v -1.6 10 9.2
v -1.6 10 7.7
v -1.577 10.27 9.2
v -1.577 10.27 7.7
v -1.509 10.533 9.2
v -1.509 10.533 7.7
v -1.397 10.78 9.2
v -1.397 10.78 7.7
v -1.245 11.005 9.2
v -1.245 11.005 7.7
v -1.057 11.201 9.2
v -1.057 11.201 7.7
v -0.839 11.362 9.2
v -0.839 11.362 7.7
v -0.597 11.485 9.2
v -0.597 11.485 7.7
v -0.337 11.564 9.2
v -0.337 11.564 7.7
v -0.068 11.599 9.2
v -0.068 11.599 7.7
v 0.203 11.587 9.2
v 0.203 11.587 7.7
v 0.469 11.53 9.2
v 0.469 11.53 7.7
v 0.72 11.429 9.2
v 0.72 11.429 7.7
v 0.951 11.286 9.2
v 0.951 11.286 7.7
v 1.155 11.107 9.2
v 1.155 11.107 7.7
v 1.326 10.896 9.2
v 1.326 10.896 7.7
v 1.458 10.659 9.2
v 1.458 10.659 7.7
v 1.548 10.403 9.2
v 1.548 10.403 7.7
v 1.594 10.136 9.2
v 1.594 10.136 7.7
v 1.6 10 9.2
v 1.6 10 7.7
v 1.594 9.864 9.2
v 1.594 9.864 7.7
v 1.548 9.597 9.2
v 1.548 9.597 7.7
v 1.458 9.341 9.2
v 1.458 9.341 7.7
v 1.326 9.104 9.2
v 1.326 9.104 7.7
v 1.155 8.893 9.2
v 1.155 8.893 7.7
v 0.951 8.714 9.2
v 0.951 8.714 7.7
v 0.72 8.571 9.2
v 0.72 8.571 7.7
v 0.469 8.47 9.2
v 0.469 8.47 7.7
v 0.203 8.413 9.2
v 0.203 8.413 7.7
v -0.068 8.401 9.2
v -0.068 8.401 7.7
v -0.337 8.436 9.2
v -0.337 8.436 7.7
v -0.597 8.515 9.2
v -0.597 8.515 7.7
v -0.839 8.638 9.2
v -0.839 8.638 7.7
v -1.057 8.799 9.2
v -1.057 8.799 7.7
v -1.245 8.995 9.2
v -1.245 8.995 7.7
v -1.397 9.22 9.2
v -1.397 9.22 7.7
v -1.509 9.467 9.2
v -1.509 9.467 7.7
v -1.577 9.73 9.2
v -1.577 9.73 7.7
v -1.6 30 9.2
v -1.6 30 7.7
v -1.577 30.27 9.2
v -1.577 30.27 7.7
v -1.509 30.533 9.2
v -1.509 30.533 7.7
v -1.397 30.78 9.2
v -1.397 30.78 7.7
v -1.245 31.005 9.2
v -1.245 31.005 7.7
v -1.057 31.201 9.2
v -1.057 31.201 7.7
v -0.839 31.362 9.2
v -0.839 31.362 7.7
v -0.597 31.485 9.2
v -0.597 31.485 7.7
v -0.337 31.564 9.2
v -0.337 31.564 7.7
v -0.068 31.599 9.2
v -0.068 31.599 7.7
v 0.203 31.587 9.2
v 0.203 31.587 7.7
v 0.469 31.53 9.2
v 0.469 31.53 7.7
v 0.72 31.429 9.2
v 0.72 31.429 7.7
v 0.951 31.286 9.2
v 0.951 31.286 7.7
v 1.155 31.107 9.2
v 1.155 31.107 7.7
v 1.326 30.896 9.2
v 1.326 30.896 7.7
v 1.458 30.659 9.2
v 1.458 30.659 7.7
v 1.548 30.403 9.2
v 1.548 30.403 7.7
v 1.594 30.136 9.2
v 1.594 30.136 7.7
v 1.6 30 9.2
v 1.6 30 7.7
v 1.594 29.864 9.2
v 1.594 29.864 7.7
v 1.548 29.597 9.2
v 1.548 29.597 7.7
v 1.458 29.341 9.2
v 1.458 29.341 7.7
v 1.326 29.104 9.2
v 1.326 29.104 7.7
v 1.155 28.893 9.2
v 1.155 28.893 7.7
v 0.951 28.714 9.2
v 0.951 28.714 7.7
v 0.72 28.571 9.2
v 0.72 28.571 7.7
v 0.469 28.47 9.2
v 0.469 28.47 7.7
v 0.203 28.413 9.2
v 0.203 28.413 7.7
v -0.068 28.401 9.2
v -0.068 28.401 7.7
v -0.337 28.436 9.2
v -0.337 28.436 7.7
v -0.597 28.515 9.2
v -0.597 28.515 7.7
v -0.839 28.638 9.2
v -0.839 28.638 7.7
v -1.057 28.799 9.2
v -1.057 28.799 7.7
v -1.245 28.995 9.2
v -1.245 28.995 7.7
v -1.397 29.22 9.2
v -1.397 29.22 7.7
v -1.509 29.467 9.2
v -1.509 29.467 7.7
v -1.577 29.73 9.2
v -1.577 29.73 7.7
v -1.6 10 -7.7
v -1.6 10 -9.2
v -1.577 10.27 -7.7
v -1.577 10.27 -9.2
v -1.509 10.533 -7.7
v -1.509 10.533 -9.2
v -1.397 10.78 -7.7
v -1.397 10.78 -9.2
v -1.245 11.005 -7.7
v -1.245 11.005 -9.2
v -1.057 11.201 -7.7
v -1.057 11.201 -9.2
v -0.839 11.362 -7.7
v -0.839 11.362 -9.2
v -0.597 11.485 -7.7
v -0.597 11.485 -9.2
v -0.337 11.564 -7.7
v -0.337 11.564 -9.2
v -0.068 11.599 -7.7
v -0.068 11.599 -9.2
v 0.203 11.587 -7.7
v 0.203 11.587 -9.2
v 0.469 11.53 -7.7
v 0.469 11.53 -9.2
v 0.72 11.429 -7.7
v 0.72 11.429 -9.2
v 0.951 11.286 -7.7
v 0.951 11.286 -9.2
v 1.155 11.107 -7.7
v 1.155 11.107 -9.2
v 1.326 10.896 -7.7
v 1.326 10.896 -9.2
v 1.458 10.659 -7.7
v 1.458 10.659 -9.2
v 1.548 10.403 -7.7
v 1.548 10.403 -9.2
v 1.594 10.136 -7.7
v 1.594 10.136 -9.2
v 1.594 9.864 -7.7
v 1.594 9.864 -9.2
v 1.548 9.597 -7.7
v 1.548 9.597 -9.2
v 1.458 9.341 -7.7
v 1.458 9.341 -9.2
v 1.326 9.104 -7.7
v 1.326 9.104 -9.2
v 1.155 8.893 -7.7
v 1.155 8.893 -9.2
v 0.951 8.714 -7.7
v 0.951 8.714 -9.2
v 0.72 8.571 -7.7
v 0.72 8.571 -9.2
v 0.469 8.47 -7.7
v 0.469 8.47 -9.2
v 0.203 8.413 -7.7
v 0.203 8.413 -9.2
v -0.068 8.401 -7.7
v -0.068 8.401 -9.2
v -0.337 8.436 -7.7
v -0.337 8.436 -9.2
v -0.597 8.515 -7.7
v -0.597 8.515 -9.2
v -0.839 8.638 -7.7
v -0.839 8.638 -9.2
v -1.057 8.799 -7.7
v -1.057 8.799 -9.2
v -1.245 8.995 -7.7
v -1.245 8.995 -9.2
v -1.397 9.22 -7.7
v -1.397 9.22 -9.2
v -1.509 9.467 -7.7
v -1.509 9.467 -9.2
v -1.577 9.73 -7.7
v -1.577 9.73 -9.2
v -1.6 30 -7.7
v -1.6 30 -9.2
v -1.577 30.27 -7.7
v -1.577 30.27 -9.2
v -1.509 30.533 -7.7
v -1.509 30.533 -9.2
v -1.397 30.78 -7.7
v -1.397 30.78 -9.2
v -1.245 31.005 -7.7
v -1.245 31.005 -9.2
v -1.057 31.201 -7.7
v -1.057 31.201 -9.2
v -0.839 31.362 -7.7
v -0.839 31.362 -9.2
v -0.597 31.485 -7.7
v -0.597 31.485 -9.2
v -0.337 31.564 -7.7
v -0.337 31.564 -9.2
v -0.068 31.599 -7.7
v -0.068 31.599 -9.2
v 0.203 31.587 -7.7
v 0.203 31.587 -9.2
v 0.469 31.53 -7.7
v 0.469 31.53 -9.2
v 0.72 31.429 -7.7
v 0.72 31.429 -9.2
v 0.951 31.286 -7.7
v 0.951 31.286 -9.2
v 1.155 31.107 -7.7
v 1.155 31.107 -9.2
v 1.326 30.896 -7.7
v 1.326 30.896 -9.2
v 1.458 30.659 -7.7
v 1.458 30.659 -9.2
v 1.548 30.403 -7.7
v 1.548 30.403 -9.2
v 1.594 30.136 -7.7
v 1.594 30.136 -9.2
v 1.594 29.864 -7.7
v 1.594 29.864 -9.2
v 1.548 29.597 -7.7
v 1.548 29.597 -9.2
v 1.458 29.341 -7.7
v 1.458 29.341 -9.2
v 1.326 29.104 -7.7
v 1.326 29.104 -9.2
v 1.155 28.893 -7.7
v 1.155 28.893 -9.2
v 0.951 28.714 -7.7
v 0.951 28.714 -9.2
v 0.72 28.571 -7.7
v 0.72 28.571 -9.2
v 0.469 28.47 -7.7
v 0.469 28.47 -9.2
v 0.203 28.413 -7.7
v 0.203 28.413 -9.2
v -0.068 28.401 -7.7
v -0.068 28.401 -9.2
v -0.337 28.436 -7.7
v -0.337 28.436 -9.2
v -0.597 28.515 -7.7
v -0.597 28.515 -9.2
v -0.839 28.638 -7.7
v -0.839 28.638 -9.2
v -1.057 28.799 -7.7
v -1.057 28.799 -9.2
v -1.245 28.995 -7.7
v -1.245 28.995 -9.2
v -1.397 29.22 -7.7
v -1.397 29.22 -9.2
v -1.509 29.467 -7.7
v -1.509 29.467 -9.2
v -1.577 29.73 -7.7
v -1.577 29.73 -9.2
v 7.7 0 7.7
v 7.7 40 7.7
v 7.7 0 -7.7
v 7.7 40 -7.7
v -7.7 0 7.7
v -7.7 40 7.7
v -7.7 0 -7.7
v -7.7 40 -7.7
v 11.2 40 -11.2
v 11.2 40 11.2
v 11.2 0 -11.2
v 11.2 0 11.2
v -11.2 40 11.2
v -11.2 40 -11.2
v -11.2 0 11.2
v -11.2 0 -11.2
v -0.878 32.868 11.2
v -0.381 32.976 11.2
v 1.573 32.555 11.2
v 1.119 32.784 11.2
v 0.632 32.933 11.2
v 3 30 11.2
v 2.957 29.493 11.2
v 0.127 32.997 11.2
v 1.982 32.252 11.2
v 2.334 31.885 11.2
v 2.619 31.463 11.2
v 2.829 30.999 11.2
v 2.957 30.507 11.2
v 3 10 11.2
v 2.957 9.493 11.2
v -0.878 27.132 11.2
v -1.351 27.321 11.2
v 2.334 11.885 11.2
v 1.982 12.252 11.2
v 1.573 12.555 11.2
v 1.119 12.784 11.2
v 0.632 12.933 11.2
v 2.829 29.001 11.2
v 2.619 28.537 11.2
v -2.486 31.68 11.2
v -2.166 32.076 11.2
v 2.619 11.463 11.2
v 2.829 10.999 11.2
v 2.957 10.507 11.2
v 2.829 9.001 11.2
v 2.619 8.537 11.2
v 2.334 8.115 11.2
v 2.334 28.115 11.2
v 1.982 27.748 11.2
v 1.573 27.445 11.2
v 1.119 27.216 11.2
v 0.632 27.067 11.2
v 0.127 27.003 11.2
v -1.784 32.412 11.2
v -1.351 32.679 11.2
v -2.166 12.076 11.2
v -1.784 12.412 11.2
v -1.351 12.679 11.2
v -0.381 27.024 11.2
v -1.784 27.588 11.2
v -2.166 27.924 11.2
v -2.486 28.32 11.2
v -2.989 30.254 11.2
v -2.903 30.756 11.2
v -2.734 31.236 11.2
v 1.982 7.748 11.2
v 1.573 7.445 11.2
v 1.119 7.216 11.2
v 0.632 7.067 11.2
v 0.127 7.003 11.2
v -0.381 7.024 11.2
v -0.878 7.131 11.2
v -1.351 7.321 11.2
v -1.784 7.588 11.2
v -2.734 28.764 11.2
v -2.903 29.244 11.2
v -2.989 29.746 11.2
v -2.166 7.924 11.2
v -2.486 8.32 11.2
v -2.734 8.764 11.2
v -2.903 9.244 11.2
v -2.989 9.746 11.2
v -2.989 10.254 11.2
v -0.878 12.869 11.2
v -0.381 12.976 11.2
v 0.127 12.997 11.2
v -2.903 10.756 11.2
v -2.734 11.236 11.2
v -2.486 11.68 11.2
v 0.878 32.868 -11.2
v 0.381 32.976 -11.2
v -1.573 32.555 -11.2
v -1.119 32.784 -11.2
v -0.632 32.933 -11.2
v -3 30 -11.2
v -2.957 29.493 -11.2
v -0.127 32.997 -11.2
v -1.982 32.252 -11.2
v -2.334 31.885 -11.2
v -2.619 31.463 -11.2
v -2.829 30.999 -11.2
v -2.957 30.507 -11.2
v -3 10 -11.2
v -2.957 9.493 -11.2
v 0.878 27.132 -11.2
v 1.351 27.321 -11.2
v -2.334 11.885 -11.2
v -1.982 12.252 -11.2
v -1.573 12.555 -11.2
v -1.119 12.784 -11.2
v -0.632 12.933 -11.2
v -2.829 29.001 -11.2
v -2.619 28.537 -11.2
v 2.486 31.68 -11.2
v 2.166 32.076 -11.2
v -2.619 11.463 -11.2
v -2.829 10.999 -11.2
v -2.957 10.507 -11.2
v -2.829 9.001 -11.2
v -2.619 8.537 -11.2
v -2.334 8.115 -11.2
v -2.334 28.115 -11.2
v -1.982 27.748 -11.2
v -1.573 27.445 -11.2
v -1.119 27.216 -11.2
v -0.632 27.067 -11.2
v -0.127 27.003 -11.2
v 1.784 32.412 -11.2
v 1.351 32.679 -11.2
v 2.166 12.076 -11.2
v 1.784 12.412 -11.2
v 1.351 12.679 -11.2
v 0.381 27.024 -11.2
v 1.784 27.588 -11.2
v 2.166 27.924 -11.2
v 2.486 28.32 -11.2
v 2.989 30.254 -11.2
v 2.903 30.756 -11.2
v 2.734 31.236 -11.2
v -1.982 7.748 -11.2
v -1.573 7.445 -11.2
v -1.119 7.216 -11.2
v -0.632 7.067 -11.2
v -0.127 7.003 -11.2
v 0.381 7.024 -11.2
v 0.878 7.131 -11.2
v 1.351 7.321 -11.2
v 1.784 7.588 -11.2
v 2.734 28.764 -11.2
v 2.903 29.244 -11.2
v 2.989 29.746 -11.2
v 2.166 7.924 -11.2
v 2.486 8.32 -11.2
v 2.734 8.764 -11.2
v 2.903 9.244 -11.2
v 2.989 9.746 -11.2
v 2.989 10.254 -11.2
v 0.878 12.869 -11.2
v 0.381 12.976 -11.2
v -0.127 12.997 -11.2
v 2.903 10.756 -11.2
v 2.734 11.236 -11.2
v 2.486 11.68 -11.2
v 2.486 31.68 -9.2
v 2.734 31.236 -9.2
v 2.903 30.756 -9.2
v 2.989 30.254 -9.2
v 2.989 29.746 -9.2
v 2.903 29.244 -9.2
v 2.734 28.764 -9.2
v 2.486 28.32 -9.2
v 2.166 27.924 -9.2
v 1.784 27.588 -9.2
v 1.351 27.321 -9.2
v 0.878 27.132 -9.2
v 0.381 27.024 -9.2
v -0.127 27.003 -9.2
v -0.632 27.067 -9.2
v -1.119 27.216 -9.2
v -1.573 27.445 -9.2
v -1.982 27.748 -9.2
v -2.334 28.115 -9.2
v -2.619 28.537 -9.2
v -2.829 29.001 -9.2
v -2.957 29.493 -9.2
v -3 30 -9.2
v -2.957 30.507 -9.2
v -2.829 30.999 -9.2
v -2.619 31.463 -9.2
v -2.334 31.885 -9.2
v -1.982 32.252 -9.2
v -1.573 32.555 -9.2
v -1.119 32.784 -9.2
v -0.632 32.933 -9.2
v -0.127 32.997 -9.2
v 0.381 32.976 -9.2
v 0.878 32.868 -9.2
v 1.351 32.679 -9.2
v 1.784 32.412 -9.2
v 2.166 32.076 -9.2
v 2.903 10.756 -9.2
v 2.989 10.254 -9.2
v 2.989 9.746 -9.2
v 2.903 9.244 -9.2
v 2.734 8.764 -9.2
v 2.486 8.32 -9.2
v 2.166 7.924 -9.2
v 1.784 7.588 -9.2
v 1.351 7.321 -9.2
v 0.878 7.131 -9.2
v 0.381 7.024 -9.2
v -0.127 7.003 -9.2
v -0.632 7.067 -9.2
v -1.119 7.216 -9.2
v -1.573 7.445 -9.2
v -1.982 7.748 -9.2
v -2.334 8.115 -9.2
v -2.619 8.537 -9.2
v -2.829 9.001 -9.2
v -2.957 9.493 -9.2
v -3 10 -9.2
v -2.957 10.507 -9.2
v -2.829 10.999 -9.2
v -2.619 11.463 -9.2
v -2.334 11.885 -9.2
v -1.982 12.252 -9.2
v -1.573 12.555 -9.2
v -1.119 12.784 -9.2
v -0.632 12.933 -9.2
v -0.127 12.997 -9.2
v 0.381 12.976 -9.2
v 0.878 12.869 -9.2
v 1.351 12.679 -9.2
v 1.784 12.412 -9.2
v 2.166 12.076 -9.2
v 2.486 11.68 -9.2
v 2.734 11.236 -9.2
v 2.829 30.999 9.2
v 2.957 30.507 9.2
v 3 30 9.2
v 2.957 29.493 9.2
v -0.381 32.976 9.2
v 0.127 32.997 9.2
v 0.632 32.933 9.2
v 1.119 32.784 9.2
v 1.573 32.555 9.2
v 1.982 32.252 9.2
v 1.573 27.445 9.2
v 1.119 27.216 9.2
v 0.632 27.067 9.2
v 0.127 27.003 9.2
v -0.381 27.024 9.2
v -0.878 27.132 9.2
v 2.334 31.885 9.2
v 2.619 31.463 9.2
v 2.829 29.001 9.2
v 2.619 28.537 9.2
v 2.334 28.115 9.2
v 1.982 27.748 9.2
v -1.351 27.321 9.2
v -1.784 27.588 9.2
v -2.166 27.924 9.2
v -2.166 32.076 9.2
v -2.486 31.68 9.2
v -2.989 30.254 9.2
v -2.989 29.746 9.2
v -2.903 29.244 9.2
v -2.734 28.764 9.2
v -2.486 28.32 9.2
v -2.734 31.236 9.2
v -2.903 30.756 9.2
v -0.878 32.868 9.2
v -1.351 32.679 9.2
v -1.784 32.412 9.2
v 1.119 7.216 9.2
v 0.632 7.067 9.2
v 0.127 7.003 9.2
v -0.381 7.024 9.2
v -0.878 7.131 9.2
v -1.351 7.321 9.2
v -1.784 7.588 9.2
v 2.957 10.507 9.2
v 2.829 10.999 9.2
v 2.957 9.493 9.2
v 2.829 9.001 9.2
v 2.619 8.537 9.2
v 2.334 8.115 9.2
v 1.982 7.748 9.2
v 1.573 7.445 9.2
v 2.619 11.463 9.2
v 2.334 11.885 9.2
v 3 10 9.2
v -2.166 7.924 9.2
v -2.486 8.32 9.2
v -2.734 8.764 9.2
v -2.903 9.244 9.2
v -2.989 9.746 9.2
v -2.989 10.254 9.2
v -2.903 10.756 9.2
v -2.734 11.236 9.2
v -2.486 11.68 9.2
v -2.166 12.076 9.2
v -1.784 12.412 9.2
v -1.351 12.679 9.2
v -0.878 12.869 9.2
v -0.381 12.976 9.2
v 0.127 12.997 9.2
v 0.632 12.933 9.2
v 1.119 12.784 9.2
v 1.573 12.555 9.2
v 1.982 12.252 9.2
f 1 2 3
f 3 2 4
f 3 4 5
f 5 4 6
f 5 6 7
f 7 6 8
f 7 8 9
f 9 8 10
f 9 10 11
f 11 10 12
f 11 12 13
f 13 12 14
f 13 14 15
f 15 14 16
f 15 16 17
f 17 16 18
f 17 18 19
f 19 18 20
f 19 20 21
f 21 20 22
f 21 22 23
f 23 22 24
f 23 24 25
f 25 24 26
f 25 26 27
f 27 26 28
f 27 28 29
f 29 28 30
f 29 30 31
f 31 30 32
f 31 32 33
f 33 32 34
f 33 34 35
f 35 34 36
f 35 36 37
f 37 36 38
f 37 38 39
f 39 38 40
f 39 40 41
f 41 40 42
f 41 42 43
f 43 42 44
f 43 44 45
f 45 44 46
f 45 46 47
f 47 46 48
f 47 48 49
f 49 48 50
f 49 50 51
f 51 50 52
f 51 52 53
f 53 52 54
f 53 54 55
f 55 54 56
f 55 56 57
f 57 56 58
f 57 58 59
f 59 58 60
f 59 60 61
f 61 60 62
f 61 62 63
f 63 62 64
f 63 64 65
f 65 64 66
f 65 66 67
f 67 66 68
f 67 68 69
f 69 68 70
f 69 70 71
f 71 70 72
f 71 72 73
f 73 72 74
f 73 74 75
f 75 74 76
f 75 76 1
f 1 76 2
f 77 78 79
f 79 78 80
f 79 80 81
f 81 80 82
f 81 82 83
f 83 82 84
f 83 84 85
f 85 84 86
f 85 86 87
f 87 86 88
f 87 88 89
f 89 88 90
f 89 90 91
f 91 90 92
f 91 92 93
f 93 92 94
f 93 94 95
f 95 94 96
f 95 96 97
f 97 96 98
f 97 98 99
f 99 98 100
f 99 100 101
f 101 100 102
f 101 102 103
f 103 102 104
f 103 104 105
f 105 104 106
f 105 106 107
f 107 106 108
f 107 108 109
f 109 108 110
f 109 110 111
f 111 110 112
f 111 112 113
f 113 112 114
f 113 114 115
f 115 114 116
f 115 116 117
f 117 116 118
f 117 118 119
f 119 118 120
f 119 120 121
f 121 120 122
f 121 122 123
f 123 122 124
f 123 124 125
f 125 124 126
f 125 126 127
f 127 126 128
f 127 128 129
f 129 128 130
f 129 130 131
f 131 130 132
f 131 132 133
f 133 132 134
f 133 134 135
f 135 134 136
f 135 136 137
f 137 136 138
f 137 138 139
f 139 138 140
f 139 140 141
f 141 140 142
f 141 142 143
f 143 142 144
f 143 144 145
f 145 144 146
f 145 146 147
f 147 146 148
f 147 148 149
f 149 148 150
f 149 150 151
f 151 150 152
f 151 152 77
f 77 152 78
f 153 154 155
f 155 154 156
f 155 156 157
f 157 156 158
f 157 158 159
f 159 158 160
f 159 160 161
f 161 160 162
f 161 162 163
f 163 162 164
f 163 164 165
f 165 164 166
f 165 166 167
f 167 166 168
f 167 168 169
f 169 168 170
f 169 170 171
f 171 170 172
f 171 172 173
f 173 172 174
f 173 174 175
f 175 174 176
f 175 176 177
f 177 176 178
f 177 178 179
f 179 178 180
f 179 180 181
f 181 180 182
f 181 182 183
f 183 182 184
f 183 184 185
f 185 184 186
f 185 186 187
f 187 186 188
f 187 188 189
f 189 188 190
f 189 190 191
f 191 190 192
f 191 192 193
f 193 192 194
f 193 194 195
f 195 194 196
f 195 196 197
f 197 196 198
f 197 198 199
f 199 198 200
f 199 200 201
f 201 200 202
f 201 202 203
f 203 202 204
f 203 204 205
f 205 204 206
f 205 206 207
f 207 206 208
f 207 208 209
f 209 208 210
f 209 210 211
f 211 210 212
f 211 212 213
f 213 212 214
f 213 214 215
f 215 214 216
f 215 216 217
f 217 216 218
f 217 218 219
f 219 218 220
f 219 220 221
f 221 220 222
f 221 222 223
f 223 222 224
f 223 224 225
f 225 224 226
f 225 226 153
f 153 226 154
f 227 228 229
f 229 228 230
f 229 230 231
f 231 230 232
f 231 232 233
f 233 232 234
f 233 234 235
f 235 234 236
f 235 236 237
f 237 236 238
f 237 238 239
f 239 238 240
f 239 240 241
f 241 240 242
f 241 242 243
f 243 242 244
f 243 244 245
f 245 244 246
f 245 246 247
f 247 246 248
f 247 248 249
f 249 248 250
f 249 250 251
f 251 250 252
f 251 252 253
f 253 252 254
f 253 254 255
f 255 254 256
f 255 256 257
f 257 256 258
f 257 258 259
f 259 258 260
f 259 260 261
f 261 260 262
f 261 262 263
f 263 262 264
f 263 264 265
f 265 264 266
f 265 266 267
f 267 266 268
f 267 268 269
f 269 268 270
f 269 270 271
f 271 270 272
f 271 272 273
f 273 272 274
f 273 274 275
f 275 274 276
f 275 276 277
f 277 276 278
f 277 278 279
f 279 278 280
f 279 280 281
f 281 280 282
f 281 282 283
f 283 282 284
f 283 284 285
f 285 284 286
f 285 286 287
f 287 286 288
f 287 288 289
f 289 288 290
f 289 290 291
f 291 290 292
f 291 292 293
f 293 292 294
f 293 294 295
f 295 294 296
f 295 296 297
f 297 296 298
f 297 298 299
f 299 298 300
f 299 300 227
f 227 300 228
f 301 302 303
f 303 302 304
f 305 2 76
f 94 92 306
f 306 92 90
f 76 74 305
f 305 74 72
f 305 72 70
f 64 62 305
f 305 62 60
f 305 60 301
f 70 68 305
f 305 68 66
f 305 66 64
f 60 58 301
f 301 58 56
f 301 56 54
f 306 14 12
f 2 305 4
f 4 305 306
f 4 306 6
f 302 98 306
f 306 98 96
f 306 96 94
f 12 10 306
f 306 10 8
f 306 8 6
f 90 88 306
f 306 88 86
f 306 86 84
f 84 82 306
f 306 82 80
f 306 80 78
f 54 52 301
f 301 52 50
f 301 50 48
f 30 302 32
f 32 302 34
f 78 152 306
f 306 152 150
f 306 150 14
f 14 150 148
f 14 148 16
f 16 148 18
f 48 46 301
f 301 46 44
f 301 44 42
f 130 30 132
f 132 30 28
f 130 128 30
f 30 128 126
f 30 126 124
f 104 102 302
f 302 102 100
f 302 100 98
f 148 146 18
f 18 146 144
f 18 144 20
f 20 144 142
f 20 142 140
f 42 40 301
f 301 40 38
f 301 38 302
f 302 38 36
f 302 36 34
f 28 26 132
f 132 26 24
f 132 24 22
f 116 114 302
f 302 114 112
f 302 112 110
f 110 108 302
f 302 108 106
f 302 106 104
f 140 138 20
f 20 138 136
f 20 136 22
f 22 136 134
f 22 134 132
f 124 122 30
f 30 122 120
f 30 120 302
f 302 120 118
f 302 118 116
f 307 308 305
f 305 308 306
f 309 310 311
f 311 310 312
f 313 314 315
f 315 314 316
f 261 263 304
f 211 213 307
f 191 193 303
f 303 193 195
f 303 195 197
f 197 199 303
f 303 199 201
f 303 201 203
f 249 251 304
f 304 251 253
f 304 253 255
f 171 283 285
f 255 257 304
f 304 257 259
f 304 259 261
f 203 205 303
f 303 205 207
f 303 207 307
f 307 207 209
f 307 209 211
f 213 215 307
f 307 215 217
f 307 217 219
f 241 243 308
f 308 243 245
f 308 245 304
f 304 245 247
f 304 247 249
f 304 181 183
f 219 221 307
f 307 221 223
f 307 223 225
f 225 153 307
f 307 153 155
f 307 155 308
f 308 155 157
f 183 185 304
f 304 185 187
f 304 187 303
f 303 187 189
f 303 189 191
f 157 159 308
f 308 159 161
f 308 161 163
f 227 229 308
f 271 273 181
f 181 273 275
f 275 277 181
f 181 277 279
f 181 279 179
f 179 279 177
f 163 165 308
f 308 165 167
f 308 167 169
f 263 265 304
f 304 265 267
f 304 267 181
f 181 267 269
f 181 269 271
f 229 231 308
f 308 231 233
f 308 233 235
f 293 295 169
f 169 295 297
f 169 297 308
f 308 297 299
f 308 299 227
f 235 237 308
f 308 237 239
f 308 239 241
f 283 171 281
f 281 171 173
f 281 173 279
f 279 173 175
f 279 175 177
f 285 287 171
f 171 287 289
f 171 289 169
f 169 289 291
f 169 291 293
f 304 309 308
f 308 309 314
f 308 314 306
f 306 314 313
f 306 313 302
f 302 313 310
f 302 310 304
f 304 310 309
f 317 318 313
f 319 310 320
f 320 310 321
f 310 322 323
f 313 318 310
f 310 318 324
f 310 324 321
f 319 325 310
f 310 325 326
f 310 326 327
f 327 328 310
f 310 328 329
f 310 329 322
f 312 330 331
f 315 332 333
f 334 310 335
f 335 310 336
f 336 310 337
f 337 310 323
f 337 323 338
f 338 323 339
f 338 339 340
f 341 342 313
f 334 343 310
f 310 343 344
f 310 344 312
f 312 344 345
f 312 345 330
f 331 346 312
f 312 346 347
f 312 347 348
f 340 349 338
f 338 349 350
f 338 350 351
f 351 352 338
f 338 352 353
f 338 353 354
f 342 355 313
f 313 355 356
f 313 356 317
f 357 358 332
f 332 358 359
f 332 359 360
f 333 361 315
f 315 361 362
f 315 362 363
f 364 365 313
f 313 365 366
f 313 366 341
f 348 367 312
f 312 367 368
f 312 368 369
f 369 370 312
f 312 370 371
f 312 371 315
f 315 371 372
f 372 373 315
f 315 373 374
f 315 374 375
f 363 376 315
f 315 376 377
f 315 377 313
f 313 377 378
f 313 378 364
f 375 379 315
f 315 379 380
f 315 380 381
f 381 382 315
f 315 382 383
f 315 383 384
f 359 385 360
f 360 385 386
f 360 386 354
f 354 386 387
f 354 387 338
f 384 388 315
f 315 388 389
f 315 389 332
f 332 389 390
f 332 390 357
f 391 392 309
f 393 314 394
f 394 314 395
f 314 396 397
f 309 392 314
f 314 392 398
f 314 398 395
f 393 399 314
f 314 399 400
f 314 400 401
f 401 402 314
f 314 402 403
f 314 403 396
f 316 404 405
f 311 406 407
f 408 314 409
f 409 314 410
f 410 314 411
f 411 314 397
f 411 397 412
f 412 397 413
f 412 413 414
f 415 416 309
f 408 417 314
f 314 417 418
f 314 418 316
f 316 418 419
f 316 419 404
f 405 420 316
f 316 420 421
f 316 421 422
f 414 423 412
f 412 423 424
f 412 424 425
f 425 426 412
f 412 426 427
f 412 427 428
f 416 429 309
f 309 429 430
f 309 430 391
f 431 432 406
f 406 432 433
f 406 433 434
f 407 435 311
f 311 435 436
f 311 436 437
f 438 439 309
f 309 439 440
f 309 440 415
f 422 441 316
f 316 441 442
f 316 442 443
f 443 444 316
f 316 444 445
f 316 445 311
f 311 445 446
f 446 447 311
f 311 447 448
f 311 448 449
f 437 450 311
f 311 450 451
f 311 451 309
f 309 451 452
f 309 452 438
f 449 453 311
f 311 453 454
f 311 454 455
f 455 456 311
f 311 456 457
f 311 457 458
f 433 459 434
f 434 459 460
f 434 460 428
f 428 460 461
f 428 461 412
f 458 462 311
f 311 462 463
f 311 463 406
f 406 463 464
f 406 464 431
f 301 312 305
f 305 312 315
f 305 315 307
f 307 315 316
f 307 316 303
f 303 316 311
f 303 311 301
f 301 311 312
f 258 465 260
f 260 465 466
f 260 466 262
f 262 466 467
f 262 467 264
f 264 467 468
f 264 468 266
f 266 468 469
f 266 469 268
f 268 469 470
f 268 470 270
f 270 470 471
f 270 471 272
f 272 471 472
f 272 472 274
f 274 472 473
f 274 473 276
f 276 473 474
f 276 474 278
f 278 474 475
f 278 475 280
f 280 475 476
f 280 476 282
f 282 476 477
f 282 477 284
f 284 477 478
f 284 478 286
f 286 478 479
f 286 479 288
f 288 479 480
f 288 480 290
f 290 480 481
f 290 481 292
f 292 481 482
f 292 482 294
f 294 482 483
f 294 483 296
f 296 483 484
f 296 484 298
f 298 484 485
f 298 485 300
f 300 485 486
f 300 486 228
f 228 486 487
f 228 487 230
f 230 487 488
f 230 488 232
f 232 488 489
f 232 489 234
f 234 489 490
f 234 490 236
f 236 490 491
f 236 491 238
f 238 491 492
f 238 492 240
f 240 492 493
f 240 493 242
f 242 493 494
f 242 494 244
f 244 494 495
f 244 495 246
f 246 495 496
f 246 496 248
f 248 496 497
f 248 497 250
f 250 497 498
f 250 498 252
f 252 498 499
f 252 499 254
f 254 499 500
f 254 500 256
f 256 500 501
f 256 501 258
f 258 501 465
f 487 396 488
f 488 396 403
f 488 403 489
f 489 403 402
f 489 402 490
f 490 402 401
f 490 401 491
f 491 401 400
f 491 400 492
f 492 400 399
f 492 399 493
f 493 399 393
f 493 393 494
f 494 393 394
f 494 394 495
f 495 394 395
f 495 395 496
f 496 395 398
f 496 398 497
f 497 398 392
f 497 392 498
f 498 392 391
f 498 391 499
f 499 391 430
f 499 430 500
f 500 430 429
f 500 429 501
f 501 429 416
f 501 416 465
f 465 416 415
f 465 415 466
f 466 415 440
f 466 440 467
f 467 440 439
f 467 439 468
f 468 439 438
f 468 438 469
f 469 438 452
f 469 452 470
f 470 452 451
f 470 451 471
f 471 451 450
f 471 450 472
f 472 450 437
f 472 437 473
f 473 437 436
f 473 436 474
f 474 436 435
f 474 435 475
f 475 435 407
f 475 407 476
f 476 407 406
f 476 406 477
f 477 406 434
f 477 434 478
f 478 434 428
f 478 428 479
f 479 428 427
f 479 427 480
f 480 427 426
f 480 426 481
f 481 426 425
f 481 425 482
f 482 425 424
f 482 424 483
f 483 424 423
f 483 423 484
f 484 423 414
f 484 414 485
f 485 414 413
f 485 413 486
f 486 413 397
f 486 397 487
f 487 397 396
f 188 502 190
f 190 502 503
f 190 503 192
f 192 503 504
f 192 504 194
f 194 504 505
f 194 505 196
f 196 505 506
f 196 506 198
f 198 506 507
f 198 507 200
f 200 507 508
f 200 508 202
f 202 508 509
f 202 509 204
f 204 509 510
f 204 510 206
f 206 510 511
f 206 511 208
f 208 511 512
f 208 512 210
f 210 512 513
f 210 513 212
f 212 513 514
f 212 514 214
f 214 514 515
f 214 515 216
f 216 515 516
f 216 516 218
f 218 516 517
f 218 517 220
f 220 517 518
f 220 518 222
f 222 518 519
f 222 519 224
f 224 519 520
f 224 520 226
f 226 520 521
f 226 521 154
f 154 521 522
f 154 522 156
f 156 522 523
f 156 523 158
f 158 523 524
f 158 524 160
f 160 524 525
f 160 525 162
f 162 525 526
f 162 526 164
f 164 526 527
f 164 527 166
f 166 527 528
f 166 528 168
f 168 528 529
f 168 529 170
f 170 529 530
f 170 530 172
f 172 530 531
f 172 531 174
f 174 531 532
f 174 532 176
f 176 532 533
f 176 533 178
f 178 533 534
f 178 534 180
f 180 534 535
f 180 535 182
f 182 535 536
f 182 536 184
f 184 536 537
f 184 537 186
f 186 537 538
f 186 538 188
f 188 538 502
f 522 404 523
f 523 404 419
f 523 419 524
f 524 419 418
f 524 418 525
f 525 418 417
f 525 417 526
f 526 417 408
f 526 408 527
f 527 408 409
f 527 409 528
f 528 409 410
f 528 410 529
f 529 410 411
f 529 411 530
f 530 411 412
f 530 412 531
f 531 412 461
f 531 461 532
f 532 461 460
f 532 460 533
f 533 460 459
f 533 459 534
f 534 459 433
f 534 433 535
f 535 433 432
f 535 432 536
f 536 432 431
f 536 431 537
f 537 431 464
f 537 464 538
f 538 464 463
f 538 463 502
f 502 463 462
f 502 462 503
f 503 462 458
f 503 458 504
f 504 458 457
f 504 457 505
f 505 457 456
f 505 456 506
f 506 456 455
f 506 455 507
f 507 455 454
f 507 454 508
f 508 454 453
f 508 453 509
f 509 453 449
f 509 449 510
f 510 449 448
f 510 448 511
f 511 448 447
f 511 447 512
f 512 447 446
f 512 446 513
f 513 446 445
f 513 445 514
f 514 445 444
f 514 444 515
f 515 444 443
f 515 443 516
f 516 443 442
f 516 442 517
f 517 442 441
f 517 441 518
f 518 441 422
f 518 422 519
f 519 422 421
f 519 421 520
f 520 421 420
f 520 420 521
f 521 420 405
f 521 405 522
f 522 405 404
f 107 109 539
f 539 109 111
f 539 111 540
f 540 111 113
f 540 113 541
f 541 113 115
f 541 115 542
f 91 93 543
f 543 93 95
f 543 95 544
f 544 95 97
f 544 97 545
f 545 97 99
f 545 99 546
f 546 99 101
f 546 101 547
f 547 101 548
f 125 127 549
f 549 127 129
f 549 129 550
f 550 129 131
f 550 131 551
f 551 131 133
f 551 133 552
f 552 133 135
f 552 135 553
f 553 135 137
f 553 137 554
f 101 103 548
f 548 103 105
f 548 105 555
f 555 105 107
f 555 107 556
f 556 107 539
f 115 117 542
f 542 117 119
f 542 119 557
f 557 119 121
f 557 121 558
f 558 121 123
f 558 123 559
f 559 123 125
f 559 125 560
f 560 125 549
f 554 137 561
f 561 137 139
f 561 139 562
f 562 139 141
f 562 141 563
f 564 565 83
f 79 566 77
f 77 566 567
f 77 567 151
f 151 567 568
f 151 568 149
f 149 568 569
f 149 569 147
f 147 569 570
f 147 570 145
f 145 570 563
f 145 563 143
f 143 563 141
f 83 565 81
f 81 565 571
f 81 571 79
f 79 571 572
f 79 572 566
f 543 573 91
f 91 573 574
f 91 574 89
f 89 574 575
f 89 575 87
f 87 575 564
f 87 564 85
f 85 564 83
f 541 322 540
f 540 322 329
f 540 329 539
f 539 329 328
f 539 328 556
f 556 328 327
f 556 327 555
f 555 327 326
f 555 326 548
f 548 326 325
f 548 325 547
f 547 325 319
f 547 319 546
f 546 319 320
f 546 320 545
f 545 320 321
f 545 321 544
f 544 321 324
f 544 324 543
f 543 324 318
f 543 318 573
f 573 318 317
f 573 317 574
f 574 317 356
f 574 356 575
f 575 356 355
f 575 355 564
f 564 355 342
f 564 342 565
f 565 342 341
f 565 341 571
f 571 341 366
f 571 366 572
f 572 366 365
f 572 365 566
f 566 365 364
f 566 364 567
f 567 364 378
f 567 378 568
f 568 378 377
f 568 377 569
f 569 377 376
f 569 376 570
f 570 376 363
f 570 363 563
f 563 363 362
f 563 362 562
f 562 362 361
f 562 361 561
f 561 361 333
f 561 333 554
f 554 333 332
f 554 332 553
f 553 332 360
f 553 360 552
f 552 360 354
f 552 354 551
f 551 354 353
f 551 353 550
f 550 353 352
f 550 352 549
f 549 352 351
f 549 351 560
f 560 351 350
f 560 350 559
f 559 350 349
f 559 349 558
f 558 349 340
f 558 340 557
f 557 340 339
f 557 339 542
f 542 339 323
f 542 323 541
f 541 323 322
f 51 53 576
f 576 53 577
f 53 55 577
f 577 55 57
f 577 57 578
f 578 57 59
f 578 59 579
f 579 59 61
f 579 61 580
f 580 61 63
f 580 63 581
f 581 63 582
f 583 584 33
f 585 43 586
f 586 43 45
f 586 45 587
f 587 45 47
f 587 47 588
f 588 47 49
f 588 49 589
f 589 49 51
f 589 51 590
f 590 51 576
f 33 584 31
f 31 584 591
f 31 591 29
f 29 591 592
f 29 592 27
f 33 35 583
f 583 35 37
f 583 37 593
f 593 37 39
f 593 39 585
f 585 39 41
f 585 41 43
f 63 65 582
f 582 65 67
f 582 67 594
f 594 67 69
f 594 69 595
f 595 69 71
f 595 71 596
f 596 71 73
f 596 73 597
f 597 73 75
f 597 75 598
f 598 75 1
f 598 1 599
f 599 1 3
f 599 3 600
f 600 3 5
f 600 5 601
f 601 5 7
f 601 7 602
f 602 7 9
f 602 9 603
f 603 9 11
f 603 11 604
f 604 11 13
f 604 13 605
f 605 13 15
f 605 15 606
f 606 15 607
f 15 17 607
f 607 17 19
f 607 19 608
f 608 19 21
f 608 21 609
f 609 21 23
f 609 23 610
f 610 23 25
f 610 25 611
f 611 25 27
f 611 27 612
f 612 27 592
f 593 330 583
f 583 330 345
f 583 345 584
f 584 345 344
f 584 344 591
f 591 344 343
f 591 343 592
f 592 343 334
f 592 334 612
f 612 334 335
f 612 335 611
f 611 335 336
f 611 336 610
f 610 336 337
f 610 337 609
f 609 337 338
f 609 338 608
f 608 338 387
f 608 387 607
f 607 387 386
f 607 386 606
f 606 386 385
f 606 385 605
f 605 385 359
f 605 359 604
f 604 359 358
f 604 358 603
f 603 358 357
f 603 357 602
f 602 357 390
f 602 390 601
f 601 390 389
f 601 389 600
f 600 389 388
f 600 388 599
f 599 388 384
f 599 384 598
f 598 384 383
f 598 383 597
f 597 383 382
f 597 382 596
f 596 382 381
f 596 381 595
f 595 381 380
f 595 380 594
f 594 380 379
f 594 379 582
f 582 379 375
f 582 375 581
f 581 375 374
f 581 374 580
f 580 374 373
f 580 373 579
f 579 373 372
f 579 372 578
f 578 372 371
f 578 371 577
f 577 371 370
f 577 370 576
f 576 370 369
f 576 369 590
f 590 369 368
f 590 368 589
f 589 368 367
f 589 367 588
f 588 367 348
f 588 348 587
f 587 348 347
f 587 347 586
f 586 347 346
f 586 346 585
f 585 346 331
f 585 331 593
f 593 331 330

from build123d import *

# Parameters (mm, degrees)
SKETCH_1_W          = 15.4
SKETCH_1_H          = 22.4
EXTRUDE_2_DEPTH     = 3
SKETCH_1_4_W        = 15.4
SKETCH_1_4_H        = 3.5
EXTRUDE_3_DEPTH     = 10
EXTRUDE_3_2_DEPTH   = 10
SKETCH_1_5_W        = 22.4
SKETCH_1_5_H        = 22.4
SKETCH_1_5_W_2      = 15.4
SKETCH_1_5_H_2      = 15.4
EXTRUDE_4_DEPTH     = 40
SKETCH_3_R          = 1.6
CUT_EXTRUDE_2_DEPTH = 52.711507423
SKETCH_10_R         = 3
CUT_EXTRUDE_7_DEPTH = 2
CUT_EXTRUDE_START   = -2
SKETCH_11_R         = 3
CUT_EXTRUDE_8_DEPTH = 2
SKETCH_12_W         = 15.4
SKETCH_12_H         = 15.4
CUT_EXTRUDE_9_DEPTH = 41.247732855


with BuildPart() as part:
    # 草图1 → 凸台-拉伸2 (new body)
    with BuildSketch(Plane(origin=(0, 0, 0), x_dir=(1, 0, 0), z_dir=(0, 1, 0))):
        Rectangle(SKETCH_1_W, SKETCH_1_H)
    extrude(amount=EXTRUDE_2_DEPTH)



with BuildPart() as body_2:
    # 草图1<4> → 凸台-拉伸3 (new body)
    with BuildSketch(Plane(origin=(0, 0, 0), x_dir=(1, 0, 0), z_dir=(0, 1, 0))):
        with Locations((0, 9.45)):
            Rectangle(SKETCH_1_4_W, SKETCH_1_4_H)
    extrude(amount=EXTRUDE_3_DEPTH)


with BuildPart() as body_3:
    # 草图1<4> → Extrude 3 2 (new body)
    with BuildSketch(Plane(origin=(0, 0, 0), x_dir=(1, 0, 0), z_dir=(0, 1, 0))):
        with Locations((0, -9.45)):
            Rectangle(SKETCH_1_4_W, SKETCH_1_4_H)
    extrude(amount=EXTRUDE_3_2_DEPTH)


with BuildPart() as part_1:
    add(part.part)

    add(body_2.part)  # 凸台-拉伸4 merges body 2

    add(body_3.part)  # 凸台-拉伸4 merges body 3
    # 草图1<5> → 凸台-拉伸4 (add)
    with BuildSketch(Plane(origin=(0, 0, 0), x_dir=(1, 0, 0), z_dir=(0, 1, 0))):
        Rectangle(SKETCH_1_5_W, SKETCH_1_5_H)
        Rectangle(SKETCH_1_5_W_2, SKETCH_1_5_H_2, mode=Mode.SUBTRACT)
    extrude(amount=EXTRUDE_4_DEPTH)

    # 草图3 → 切除-拉伸2 (cut, through all)
    with BuildSketch(Plane(origin=(0, 0, -19.6), x_dir=(-1, 0, 0), z_dir=(0, 0, -1))):
        with Locations((0, 10)):
            Circle(SKETCH_3_R)
        with Locations((0, 30)):
            Circle(SKETCH_3_R)
    extrude(amount=-CUT_EXTRUDE_2_DEPTH, mode=Mode.SUBTRACT)

    # 草图10 → 切除-拉伸7 (cut)
    with BuildSketch(Plane(origin=(0, 0, -11.2), x_dir=(-1, 0, 0), z_dir=(0, 0, -1))):
        with Locations((0, 30)):
            Circle(SKETCH_10_R)
        with Locations((0, 10)):
            Circle(SKETCH_10_R)
    extrude(amount=-CUT_EXTRUDE_7_DEPTH, mode=Mode.SUBTRACT)

    # 草图11 → 切除-拉伸8 (cut)
    with BuildSketch(Plane.XY.offset(11.2).offset(CUT_EXTRUDE_START)):
        with Locations((0, 30)):
            Circle(SKETCH_11_R)
        with Locations((0, 10)):
            Circle(SKETCH_11_R)
    extrude(amount=CUT_EXTRUDE_8_DEPTH, mode=Mode.SUBTRACT)

    # 草图12 → 切除-拉伸9 (cut, through all)
    with BuildSketch(Plane(origin=(0, 3, 0), x_dir=(1, 0, 0), z_dir=(0, 1, 0))):
        Rectangle(SKETCH_12_W, SKETCH_12_H)
    extrude(amount=-CUT_EXTRUDE_9_DEPTH, mode=Mode.SUBTRACT)


solid = part_1.part
